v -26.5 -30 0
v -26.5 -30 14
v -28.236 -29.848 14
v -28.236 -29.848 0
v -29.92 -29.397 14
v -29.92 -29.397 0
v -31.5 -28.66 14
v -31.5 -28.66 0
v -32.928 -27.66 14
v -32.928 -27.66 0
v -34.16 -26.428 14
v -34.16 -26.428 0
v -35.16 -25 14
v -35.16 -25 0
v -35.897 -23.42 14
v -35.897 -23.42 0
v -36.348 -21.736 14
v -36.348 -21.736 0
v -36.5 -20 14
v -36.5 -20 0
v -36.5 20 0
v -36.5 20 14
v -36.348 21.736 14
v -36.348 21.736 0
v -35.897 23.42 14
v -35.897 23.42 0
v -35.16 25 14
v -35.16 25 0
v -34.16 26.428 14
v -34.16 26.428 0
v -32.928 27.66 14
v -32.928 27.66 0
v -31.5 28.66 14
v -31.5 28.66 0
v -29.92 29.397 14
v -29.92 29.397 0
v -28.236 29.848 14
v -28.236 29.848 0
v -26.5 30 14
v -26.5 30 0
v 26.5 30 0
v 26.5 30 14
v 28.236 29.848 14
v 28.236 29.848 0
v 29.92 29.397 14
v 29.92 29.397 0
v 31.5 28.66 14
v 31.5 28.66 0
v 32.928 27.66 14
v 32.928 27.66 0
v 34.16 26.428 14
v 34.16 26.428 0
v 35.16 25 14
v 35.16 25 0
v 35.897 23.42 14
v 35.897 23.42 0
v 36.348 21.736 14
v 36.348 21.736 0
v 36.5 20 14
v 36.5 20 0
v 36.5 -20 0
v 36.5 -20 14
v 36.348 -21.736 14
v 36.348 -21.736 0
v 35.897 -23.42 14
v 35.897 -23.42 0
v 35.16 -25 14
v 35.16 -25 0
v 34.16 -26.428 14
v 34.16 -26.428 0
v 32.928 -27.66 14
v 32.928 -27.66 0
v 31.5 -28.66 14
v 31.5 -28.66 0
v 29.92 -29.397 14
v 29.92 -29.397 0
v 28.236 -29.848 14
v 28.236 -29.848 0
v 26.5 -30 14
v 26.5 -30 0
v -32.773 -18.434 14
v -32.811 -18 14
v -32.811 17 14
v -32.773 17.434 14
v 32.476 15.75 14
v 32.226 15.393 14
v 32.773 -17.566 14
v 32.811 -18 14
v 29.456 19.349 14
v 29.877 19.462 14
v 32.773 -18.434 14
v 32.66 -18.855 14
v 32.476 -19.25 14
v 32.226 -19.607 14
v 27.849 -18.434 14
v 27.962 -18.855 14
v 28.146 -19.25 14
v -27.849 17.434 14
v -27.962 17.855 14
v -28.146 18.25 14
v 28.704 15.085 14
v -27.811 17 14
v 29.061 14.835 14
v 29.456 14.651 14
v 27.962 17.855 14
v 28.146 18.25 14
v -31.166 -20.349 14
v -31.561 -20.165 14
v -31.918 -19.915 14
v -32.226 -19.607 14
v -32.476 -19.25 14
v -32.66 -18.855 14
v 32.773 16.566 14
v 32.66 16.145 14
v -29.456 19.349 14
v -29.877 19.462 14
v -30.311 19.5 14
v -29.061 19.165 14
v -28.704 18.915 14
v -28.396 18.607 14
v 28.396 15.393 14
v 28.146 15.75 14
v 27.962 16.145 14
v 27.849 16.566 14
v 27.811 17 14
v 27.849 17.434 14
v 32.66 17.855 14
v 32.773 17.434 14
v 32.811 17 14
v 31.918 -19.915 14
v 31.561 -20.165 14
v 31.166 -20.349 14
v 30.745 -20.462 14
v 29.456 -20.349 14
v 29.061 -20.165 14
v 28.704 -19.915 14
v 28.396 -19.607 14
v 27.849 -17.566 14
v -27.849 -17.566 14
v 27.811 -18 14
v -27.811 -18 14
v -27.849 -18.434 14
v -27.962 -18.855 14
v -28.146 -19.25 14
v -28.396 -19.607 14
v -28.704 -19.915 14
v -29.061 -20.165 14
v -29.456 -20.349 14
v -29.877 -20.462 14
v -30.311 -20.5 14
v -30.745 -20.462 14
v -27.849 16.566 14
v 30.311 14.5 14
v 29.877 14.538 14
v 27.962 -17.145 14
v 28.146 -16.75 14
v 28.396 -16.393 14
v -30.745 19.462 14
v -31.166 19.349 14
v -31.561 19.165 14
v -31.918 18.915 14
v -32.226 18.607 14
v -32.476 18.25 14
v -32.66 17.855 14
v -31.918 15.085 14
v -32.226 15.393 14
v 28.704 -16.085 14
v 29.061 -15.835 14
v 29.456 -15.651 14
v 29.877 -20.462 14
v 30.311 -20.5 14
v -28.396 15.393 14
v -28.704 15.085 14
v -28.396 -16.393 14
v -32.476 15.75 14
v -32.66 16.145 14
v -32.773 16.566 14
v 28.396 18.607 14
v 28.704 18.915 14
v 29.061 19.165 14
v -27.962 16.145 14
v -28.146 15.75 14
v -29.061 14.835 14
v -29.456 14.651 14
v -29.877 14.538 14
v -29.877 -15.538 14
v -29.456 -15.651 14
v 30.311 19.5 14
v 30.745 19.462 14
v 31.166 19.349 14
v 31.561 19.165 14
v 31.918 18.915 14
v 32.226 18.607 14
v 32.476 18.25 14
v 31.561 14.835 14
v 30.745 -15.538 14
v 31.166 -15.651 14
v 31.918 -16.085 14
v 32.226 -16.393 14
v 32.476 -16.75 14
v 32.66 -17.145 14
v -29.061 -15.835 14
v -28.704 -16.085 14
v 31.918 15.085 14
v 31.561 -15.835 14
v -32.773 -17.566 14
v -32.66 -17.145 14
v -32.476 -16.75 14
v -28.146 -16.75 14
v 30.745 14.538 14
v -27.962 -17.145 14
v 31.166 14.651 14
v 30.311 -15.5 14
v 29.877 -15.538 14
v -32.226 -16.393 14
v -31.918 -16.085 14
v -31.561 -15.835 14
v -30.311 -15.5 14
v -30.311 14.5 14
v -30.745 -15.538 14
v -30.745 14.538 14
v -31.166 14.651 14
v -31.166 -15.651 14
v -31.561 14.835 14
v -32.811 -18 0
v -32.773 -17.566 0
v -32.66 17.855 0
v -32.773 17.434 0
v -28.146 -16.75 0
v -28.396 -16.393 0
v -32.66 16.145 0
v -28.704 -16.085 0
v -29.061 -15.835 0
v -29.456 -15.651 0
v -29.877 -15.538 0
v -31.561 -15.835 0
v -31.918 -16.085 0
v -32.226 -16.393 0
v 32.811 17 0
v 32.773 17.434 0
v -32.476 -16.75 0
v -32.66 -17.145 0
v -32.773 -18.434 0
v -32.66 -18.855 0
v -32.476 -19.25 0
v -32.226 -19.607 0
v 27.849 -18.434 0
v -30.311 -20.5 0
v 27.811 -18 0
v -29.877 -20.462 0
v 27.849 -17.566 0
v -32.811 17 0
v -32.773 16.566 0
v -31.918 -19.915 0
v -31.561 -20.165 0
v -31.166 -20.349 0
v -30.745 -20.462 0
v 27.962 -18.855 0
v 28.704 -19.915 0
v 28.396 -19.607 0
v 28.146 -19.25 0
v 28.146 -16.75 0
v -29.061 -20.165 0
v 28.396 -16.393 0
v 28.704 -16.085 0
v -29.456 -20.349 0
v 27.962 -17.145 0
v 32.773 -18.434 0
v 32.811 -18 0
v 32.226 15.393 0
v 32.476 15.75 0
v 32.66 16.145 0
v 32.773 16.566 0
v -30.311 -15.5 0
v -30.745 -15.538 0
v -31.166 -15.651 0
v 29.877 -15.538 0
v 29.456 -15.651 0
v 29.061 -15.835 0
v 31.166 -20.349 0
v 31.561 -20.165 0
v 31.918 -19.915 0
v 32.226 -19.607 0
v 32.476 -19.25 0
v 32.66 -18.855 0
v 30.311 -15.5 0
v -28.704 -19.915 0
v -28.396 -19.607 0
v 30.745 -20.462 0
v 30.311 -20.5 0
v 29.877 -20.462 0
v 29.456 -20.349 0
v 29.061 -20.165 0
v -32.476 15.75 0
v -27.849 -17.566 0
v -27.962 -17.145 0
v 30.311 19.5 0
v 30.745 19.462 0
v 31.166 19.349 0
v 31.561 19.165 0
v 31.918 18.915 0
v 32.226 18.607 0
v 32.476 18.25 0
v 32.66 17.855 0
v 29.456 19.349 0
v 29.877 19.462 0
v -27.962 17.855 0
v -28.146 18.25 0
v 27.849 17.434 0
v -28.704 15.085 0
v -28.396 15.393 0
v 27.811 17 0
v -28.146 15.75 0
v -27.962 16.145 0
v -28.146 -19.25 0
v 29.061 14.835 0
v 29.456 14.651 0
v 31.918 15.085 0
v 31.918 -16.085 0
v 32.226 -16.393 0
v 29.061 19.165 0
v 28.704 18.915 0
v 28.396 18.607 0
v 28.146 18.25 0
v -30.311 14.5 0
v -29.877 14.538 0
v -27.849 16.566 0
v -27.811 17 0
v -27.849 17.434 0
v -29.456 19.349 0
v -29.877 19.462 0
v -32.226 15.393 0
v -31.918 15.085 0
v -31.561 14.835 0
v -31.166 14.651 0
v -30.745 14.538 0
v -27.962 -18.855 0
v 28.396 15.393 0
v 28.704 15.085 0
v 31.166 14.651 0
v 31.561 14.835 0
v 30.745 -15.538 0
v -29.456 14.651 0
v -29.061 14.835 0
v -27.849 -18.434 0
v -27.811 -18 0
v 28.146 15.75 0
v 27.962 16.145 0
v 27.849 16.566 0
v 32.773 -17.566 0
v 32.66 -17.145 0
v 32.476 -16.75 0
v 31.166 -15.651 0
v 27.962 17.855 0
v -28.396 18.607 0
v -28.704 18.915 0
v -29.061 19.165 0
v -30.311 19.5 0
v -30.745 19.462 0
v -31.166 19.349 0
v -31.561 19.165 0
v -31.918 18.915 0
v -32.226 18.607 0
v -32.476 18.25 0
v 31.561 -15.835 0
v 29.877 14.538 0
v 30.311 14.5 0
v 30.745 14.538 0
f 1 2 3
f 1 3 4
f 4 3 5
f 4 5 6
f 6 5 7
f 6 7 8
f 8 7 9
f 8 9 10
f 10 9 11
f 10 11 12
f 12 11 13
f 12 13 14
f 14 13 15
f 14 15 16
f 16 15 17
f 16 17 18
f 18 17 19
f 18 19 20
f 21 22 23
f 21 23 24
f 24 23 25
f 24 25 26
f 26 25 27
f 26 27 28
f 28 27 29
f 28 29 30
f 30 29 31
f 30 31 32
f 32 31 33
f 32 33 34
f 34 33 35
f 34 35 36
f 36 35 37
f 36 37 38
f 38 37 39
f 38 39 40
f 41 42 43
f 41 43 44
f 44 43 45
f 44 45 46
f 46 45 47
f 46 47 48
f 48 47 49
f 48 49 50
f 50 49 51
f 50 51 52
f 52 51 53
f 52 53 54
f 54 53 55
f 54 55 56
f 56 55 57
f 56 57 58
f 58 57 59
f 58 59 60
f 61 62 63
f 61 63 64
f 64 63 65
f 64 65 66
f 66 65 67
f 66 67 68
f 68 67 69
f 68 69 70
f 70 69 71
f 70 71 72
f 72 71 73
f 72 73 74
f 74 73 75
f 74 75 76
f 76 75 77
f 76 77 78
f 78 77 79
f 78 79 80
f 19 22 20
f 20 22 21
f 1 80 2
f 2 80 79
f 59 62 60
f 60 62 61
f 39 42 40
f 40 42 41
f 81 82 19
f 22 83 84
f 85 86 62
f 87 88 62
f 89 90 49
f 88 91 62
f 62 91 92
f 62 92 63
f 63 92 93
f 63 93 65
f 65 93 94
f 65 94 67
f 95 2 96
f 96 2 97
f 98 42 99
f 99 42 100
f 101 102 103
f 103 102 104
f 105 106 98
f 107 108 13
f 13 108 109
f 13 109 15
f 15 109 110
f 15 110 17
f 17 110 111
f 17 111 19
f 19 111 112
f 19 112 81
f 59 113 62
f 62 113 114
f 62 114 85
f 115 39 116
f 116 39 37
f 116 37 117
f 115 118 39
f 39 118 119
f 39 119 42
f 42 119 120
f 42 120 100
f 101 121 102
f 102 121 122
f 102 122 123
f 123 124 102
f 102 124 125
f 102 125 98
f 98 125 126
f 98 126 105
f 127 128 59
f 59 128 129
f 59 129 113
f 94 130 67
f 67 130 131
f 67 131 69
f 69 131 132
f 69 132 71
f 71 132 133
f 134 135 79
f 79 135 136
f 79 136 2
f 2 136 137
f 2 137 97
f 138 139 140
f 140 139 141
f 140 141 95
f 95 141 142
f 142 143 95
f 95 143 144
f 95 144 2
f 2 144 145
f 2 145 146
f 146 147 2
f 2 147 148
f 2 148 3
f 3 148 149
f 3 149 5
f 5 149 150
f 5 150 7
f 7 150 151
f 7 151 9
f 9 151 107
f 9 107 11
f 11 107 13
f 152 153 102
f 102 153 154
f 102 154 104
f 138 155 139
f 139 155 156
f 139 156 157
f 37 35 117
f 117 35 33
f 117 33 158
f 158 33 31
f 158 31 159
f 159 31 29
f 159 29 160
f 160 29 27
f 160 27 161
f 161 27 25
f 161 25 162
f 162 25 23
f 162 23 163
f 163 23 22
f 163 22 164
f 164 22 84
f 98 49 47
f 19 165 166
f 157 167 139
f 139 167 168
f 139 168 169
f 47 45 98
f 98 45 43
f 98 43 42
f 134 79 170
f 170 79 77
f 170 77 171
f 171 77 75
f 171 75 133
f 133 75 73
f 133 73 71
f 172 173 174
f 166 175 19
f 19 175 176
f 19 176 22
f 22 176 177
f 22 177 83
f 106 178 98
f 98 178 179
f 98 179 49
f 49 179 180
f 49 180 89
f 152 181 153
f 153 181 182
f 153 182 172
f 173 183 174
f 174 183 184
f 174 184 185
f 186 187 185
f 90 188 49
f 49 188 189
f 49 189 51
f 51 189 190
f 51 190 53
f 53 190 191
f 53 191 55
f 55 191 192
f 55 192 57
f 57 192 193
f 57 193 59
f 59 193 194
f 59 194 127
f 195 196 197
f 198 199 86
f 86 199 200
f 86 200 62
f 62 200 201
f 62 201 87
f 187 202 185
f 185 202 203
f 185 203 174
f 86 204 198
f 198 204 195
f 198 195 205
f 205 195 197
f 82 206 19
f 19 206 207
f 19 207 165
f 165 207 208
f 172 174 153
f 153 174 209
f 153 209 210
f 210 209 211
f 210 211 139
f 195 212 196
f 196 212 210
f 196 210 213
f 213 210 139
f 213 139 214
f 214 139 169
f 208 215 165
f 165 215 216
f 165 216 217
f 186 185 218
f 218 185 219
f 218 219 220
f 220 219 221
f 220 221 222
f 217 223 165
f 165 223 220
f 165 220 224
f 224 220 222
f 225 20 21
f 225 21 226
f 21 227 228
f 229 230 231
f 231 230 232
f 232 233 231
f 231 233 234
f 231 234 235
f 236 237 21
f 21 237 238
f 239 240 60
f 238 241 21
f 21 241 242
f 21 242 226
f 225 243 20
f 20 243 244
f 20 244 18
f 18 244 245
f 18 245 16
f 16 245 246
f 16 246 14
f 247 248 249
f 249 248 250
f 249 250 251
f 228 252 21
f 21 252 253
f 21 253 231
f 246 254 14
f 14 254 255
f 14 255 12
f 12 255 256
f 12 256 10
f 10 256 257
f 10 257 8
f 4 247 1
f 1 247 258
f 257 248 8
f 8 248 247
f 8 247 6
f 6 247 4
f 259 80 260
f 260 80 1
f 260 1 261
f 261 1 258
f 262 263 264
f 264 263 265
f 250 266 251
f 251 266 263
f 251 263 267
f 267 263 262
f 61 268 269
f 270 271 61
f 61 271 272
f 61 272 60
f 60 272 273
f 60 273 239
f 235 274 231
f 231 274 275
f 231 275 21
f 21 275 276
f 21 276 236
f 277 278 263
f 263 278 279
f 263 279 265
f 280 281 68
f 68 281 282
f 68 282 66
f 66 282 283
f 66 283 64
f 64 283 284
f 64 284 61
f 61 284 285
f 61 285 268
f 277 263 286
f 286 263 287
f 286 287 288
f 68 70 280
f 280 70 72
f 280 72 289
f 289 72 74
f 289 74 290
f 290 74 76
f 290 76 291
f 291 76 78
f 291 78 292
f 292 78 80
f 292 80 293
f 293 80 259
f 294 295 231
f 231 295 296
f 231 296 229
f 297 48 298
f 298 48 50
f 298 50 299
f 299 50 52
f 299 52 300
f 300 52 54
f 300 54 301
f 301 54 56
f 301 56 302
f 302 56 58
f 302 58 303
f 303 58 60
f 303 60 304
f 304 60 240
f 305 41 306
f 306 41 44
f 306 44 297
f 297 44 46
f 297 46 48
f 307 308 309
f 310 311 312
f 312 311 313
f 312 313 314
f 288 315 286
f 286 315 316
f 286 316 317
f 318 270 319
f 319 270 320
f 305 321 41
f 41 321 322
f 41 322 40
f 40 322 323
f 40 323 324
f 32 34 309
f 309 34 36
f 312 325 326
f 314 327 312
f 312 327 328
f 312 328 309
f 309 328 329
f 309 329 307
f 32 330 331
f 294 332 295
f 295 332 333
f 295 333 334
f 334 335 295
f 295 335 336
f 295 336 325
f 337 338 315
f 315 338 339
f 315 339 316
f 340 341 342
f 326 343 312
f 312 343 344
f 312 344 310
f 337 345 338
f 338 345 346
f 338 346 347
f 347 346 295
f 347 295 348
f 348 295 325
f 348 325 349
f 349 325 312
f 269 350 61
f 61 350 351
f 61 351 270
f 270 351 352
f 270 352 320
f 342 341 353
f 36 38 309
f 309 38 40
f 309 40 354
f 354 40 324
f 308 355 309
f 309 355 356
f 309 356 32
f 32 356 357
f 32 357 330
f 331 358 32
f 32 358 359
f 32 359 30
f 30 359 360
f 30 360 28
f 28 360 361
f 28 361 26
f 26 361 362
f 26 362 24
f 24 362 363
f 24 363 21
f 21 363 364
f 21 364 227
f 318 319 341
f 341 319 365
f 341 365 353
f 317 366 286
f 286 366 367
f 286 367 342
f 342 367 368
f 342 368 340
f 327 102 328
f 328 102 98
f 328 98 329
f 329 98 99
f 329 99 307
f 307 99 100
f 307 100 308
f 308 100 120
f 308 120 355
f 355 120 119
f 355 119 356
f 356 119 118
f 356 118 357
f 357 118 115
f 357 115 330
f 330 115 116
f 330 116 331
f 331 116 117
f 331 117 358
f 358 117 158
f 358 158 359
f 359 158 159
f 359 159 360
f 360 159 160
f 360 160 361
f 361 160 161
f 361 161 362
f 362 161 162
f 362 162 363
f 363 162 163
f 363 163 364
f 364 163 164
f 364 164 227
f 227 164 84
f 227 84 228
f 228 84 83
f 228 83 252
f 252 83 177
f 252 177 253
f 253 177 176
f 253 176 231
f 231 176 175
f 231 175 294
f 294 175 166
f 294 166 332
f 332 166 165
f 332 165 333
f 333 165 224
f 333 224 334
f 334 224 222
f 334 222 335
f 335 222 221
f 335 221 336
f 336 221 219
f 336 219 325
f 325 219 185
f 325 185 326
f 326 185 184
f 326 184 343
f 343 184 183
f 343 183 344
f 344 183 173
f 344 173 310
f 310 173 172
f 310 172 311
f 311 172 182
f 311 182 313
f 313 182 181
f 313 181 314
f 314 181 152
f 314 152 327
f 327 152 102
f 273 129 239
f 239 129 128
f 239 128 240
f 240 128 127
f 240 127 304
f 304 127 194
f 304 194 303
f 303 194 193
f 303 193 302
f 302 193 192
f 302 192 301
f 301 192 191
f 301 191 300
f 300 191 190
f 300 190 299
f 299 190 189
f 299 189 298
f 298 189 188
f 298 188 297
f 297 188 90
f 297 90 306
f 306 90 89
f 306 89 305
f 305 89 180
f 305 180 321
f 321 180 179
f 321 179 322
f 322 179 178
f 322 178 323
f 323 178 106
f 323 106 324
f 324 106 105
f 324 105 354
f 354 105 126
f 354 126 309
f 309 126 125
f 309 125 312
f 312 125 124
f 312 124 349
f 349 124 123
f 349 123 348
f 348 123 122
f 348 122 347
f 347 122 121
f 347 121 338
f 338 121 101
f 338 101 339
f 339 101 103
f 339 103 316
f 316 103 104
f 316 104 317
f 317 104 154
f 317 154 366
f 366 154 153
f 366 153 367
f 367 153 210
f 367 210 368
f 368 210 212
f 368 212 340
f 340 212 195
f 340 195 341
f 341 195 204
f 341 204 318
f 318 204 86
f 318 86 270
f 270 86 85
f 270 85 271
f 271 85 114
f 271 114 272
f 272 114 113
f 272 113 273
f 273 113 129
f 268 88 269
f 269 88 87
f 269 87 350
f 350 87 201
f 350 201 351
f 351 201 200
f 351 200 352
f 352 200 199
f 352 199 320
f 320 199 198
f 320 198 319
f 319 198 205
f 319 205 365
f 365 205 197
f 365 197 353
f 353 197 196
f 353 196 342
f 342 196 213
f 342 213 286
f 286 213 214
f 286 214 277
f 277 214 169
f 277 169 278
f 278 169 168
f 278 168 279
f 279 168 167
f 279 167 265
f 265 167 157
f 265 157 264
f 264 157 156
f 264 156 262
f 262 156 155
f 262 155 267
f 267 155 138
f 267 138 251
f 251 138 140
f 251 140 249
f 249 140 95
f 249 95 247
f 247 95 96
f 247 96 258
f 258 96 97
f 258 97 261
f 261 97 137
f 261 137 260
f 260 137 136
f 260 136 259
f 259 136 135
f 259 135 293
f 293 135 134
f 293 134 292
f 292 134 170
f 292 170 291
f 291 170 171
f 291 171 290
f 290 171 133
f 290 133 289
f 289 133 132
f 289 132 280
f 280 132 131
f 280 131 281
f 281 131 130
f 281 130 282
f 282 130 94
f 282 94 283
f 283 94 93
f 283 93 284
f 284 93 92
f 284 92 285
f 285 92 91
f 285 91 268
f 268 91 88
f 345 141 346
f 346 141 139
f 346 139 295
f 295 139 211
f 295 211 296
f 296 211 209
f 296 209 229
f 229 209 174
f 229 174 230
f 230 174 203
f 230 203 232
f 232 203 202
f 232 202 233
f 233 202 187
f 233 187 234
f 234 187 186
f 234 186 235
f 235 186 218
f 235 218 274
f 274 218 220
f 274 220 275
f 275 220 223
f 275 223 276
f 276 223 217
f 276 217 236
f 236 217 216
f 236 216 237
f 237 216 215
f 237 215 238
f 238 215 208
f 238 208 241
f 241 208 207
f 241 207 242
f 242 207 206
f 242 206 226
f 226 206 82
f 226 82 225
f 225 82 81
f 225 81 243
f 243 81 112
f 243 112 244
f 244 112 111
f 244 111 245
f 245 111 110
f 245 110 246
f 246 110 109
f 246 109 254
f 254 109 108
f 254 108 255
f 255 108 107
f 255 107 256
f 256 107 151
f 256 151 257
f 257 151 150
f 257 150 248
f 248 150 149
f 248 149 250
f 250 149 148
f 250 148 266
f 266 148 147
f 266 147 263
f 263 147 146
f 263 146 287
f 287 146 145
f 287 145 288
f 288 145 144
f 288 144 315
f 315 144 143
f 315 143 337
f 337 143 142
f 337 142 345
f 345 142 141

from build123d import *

# Parameters (mm, degrees)
SKETCH1_W          = 73
SKETCH1_H          = 60
PLATE_DEPTH        = 14
SKETCH2_R          = 2.5
CUT_EXTRUDE4_DEPTH = 16
FILLET1_R          = 10
FILLET2_R          = 10
FILLET3_R          = 10
FILLET4_R          = 10


with BuildPart() as part:
    # Sketch1 → Plate (new body)
    with BuildSketch(Plane.XY):
        Rectangle(SKETCH1_W, SKETCH1_H)
    extrude(amount=PLATE_DEPTH)

    # Sketch2 → Cut-Extrude4 (cut)
    with BuildSketch(Plane.XY.offset(14)):
        with Locations((-30.310889135, 17)):
            Circle(SKETCH2_R)
        with Locations((30.310889135, 17)):
            Circle(SKETCH2_R)
        with Locations((30.310889135, -18)):
            Circle(SKETCH2_R)
        with Locations((-30.310889135, -18)):
            Circle(SKETCH2_R)
    extrude(amount=-CUT_EXTRUDE4_DEPTH, mode=Mode.SUBTRACT)

    # Fillet1
    fillet1_edges = [part.edges().sort_by_distance(p)[0] for p in [
        (36.5, -30, 7),
    ]]
    fillet(fillet1_edges, radius=FILLET1_R)

    # Fillet2
    fillet2_edges = [part.edges().sort_by_distance(p)[0] for p in [
        (36.5, 30, 7),
    ]]
    fillet(fillet2_edges, radius=FILLET2_R)

    # Fillet3
    fillet3_edges = [part.edges().sort_by_distance(p)[0] for p in [
        (-36.5, 30, 7),
    ]]
    fillet(fillet3_edges, radius=FILLET3_R)

    # Fillet4
    fillet4_edges = [part.edges().sort_by_distance(p)[0] for p in [
        (-36.5, -30, 7),
    ]]
    fillet(fillet4_edges, radius=FILLET4_R)


solid = part.part
